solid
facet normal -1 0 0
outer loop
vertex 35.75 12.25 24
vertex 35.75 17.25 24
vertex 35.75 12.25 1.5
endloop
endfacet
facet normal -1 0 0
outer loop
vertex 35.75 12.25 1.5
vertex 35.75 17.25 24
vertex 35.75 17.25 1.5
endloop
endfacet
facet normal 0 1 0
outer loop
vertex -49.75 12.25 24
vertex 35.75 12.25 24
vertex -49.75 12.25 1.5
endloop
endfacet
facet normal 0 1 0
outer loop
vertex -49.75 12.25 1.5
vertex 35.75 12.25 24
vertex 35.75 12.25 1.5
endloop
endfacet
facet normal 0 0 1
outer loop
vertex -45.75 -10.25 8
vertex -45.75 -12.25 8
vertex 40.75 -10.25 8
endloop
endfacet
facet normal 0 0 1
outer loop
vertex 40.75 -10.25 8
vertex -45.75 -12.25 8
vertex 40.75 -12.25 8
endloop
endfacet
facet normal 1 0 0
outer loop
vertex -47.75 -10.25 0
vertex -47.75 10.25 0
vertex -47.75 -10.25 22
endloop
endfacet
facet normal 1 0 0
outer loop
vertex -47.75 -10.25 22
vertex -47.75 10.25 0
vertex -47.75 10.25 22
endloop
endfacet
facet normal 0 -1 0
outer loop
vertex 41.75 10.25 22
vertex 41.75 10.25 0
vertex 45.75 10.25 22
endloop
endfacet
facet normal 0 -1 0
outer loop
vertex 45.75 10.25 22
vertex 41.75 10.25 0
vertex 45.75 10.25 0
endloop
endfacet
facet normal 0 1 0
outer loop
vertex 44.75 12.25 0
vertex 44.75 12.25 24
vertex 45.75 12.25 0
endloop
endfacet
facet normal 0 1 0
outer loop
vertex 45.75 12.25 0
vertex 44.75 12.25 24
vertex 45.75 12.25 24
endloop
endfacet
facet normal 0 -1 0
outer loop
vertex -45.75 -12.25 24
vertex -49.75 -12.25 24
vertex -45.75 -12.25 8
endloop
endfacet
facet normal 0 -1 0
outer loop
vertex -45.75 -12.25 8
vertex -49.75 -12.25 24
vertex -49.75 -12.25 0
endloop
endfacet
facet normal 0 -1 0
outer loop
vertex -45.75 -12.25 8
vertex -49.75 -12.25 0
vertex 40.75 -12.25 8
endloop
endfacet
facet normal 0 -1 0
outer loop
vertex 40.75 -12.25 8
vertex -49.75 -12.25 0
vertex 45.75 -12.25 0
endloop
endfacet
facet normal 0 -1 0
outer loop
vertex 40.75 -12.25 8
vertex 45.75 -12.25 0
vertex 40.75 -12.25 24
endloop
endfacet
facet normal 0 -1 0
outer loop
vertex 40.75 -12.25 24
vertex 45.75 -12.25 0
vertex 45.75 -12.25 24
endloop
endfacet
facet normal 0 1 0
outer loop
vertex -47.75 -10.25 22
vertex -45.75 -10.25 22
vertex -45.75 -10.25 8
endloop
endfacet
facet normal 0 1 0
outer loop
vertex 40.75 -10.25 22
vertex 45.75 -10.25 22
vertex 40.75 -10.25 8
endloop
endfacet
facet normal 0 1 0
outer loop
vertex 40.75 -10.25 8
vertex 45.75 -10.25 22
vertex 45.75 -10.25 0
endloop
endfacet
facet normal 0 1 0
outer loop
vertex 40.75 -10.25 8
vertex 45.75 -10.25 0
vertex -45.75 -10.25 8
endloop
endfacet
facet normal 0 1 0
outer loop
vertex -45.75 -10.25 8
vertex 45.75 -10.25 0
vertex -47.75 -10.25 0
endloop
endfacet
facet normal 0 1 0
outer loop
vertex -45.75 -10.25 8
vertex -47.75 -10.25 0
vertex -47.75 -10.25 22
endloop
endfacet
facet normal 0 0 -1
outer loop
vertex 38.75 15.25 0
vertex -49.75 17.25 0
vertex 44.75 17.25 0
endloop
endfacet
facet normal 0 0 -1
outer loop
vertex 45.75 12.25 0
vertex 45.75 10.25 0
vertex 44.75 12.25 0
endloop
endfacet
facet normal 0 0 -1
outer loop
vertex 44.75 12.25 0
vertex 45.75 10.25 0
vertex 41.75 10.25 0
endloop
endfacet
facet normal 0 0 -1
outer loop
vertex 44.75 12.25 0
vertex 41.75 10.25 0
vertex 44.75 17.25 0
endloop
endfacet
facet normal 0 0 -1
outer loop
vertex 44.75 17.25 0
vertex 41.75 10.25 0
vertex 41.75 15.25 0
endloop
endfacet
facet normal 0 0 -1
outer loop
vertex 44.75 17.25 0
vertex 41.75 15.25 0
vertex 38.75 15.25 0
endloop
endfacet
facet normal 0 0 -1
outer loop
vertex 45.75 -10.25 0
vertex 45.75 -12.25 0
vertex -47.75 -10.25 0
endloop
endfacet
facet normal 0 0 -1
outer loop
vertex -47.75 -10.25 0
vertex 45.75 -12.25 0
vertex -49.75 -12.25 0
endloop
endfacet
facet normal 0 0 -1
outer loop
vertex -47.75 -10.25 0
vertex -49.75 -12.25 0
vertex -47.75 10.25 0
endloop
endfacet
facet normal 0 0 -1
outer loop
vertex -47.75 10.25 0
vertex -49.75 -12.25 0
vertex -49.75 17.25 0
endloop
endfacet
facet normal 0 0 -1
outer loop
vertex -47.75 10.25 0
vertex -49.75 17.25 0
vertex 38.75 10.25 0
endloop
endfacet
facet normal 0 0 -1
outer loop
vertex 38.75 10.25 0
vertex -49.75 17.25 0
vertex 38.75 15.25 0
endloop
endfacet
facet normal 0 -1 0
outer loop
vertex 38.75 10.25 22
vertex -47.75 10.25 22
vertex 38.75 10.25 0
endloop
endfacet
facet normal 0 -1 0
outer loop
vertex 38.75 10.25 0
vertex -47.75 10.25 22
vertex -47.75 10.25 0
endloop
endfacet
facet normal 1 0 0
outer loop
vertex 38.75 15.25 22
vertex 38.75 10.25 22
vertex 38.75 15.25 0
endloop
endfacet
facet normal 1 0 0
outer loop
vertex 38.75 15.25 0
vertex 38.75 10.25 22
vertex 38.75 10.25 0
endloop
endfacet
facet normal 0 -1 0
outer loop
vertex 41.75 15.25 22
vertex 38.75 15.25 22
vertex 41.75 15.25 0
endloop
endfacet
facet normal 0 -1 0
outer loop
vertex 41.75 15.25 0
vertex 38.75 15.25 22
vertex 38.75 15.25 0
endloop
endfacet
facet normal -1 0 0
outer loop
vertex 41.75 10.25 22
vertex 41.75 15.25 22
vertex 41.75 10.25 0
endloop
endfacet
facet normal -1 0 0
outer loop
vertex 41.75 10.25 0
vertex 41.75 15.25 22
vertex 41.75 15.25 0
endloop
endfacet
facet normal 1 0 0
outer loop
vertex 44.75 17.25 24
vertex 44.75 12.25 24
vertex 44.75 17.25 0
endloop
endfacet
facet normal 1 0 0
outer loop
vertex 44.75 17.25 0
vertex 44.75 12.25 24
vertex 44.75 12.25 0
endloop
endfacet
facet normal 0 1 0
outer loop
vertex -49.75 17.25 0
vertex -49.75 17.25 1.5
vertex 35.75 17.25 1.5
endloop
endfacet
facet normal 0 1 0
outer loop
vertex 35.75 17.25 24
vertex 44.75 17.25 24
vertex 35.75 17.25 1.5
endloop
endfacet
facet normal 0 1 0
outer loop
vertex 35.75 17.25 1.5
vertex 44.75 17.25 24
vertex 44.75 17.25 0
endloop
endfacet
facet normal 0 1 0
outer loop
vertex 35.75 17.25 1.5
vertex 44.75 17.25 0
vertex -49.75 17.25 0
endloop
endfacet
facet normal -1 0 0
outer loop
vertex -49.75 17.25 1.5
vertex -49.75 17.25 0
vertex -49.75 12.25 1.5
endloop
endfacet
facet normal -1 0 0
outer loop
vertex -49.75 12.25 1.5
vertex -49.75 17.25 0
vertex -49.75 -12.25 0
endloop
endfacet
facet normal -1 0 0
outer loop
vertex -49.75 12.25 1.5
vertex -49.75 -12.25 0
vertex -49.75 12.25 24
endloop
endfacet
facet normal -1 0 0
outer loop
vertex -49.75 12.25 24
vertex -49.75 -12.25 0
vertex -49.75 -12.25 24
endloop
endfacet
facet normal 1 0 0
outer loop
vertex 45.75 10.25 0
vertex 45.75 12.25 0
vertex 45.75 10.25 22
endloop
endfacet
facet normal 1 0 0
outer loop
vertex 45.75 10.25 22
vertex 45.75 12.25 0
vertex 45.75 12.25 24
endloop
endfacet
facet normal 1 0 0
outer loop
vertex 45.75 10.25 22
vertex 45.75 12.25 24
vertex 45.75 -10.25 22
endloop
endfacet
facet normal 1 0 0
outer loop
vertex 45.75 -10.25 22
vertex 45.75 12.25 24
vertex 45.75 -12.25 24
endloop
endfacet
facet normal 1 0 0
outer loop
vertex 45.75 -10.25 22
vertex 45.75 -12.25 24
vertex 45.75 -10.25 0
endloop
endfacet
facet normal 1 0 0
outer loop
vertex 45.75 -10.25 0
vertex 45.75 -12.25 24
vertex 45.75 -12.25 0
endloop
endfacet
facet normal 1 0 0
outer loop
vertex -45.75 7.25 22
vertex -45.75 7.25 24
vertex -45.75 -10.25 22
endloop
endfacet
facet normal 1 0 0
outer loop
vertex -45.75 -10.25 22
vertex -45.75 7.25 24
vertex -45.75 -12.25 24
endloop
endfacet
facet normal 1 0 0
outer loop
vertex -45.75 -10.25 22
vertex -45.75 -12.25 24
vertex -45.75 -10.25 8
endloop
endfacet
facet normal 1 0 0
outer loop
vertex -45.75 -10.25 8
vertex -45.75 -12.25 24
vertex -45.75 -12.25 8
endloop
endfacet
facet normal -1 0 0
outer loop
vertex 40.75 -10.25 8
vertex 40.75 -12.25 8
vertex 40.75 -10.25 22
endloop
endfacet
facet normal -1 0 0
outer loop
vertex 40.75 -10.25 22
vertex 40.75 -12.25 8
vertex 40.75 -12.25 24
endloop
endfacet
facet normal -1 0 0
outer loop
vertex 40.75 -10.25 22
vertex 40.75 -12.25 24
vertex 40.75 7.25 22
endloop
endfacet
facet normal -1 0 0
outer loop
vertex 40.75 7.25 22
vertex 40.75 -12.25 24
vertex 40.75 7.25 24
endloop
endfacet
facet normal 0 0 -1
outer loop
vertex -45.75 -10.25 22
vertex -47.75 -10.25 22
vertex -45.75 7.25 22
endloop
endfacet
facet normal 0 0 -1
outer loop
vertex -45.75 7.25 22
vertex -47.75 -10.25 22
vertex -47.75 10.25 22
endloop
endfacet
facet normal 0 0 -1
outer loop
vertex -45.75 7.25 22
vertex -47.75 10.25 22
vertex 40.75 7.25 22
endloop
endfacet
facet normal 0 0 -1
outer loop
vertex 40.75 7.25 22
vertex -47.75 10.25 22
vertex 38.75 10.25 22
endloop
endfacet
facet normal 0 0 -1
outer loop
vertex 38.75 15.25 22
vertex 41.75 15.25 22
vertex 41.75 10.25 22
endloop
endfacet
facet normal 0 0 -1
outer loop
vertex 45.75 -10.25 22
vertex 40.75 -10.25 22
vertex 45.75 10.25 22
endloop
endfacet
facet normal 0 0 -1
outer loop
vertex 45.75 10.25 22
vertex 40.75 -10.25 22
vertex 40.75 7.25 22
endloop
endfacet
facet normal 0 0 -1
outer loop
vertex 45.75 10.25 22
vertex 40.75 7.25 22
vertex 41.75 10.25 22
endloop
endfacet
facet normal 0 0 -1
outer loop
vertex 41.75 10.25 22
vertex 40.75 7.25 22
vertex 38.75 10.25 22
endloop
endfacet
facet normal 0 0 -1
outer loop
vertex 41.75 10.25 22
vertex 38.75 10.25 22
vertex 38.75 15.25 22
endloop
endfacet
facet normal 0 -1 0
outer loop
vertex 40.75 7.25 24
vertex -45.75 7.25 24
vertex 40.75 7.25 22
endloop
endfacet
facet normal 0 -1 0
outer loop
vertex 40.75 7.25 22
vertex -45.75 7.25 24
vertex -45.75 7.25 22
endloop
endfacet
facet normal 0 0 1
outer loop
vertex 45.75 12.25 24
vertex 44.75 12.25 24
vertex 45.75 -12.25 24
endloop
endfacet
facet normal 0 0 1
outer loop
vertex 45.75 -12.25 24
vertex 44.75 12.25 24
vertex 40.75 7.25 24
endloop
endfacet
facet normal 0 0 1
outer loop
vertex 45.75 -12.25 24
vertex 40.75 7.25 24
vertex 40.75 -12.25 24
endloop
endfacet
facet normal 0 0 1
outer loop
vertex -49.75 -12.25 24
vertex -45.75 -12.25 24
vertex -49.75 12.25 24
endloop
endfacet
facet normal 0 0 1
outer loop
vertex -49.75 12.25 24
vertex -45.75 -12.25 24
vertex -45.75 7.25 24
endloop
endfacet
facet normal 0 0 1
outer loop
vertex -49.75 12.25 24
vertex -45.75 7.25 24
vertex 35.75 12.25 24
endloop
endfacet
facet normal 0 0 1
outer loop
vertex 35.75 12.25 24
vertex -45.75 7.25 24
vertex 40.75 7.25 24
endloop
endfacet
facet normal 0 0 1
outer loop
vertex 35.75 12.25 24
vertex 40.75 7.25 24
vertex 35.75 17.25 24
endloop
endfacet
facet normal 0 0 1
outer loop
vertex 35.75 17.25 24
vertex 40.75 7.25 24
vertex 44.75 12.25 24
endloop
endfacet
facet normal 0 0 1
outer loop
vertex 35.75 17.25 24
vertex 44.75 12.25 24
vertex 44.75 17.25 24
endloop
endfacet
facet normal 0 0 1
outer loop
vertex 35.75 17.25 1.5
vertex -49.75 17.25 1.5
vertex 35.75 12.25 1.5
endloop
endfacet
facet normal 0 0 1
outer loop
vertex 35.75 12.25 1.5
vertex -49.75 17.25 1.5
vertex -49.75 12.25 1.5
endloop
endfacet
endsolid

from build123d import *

# Parameters (mm, degrees)
EXTRUDE_1_DEPTH          = 8
EXTRUDE_3_DEPTH          = 14
CUT_EXTRUDE_1_DEPTH      = 55.485089704
CUT_EXTRUDE_1_DEPTH_BACK = 55.485089704
SKETCH_4_W               = 2
SKETCH_4_H               = 24.5
SKETCH_7_W               = 2
SKETCH_7_H               = 2
SKETCH_7_W_2             = 5
EXTRUDE_6_DEPTH          = 14
EXTRUDE_4_DEPTH          = 2
SKETCH_8_W               = 85.5
SKETCH_8_H               = 1.5
EXTRUDE_7_DEPTH          = 5


with BuildPart() as part:
    # Эскиз1 → Бобышка-Вытянуть1 (new body)
    with BuildSketch(Plane.XY):
        Polygon((47.75, 12.25), (44.75, 12.25), (44.75, 17.25), (35.75, 17.25), (35.75, 12.25), (-49.75, 12.25), (-49.75, -12.25), (47.75, -12.25), (47.75, -10.25), (-47.75, -10.25), (-47.75, 10.25), (38.75, 10.25), (38.75, 15.25), (41.75, 15.25), (41.75, 12.25), (41.75, 10.25), (47.75, 10.25), align=None)
    extrude(amount=EXTRUDE_1_DEPTH)

    # Эскиз2 → Бобышка-Вытянуть3 (add)
    with BuildSketch(Plane.XY.offset(8)):
        Polygon((44.75, 10.25), (47.75, 10.25), (47.75, 12.25), (44.75, 12.25), (44.75, 15.25), (44.75, 17.25), (41.75, 17.25), (35.75, 17.25), (35.75, 15.25), (35.75, 12.25), (-47.75, 12.25), (-49.75, 12.25), (-49.75, 10.25), (-49.75, -10.25), (-49.75, -12.25), (-47.75, -12.25), (-47.75, -10.25), (-47.75, 10.25), (35.75, 10.25), (38.75, 10.25), (38.75, 12.25), (38.75, 15.25), (41.75, 15.25), (41.75, 10.25), align=None)
    extrude(amount=EXTRUDE_3_DEPTH)

    # Эскиз4 → Вырез-Вытянуть1 (cut, two sides: drawn at the far end of the back side and taken through both)
    with BuildSketch(Plane.XY.offset(8).offset(-CUT_EXTRUDE_1_DEPTH_BACK)):
        with Locations((46.75, 0)):
            Rectangle(SKETCH_4_W, SKETCH_4_H)
    extrude(amount=CUT_EXTRUDE_1_DEPTH + CUT_EXTRUDE_1_DEPTH_BACK, mode=Mode.SUBTRACT)

    # Эскиз7 → Бобышка-Вытянуть6 (add)
    with BuildSketch(Plane.XY.offset(8)):
        with Locations((-46.75, -11.25)):
            Rectangle(SKETCH_7_W, SKETCH_7_H)
        with Locations((43.25, -11.25)):
            Rectangle(SKETCH_7_W_2, SKETCH_7_H)
    extrude(amount=EXTRUDE_6_DEPTH)

    # Эскиз5 → Бобышка-Вытянуть4 (add)
    with BuildSketch(Plane.XY.offset(22)):
        Polygon((45.75, -12.25), (40.75, -12.25), (40.75, 7.25), (-45.75, 7.25), (-45.75, -12.25), (-49.75, -12.25), (-49.75, 12.25), (35.75, 12.25), (35.75, 17.25), (44.75, 17.25), (44.75, 12.25), (45.75, 12.25), align=None)
    extrude(amount=EXTRUDE_4_DEPTH)

    # Эскиз8 → Бобышка-Вытянуть7 (add)
    with BuildSketch(Plane(origin=(0, 12.25, 0), x_dir=(1, 0, 0), z_dir=(0, 1, 0))):
        with Locations((-7, -0.75)):
            Rectangle(SKETCH_8_W, SKETCH_8_H)
    extrude(amount=EXTRUDE_7_DEPTH)


solid = part.part
